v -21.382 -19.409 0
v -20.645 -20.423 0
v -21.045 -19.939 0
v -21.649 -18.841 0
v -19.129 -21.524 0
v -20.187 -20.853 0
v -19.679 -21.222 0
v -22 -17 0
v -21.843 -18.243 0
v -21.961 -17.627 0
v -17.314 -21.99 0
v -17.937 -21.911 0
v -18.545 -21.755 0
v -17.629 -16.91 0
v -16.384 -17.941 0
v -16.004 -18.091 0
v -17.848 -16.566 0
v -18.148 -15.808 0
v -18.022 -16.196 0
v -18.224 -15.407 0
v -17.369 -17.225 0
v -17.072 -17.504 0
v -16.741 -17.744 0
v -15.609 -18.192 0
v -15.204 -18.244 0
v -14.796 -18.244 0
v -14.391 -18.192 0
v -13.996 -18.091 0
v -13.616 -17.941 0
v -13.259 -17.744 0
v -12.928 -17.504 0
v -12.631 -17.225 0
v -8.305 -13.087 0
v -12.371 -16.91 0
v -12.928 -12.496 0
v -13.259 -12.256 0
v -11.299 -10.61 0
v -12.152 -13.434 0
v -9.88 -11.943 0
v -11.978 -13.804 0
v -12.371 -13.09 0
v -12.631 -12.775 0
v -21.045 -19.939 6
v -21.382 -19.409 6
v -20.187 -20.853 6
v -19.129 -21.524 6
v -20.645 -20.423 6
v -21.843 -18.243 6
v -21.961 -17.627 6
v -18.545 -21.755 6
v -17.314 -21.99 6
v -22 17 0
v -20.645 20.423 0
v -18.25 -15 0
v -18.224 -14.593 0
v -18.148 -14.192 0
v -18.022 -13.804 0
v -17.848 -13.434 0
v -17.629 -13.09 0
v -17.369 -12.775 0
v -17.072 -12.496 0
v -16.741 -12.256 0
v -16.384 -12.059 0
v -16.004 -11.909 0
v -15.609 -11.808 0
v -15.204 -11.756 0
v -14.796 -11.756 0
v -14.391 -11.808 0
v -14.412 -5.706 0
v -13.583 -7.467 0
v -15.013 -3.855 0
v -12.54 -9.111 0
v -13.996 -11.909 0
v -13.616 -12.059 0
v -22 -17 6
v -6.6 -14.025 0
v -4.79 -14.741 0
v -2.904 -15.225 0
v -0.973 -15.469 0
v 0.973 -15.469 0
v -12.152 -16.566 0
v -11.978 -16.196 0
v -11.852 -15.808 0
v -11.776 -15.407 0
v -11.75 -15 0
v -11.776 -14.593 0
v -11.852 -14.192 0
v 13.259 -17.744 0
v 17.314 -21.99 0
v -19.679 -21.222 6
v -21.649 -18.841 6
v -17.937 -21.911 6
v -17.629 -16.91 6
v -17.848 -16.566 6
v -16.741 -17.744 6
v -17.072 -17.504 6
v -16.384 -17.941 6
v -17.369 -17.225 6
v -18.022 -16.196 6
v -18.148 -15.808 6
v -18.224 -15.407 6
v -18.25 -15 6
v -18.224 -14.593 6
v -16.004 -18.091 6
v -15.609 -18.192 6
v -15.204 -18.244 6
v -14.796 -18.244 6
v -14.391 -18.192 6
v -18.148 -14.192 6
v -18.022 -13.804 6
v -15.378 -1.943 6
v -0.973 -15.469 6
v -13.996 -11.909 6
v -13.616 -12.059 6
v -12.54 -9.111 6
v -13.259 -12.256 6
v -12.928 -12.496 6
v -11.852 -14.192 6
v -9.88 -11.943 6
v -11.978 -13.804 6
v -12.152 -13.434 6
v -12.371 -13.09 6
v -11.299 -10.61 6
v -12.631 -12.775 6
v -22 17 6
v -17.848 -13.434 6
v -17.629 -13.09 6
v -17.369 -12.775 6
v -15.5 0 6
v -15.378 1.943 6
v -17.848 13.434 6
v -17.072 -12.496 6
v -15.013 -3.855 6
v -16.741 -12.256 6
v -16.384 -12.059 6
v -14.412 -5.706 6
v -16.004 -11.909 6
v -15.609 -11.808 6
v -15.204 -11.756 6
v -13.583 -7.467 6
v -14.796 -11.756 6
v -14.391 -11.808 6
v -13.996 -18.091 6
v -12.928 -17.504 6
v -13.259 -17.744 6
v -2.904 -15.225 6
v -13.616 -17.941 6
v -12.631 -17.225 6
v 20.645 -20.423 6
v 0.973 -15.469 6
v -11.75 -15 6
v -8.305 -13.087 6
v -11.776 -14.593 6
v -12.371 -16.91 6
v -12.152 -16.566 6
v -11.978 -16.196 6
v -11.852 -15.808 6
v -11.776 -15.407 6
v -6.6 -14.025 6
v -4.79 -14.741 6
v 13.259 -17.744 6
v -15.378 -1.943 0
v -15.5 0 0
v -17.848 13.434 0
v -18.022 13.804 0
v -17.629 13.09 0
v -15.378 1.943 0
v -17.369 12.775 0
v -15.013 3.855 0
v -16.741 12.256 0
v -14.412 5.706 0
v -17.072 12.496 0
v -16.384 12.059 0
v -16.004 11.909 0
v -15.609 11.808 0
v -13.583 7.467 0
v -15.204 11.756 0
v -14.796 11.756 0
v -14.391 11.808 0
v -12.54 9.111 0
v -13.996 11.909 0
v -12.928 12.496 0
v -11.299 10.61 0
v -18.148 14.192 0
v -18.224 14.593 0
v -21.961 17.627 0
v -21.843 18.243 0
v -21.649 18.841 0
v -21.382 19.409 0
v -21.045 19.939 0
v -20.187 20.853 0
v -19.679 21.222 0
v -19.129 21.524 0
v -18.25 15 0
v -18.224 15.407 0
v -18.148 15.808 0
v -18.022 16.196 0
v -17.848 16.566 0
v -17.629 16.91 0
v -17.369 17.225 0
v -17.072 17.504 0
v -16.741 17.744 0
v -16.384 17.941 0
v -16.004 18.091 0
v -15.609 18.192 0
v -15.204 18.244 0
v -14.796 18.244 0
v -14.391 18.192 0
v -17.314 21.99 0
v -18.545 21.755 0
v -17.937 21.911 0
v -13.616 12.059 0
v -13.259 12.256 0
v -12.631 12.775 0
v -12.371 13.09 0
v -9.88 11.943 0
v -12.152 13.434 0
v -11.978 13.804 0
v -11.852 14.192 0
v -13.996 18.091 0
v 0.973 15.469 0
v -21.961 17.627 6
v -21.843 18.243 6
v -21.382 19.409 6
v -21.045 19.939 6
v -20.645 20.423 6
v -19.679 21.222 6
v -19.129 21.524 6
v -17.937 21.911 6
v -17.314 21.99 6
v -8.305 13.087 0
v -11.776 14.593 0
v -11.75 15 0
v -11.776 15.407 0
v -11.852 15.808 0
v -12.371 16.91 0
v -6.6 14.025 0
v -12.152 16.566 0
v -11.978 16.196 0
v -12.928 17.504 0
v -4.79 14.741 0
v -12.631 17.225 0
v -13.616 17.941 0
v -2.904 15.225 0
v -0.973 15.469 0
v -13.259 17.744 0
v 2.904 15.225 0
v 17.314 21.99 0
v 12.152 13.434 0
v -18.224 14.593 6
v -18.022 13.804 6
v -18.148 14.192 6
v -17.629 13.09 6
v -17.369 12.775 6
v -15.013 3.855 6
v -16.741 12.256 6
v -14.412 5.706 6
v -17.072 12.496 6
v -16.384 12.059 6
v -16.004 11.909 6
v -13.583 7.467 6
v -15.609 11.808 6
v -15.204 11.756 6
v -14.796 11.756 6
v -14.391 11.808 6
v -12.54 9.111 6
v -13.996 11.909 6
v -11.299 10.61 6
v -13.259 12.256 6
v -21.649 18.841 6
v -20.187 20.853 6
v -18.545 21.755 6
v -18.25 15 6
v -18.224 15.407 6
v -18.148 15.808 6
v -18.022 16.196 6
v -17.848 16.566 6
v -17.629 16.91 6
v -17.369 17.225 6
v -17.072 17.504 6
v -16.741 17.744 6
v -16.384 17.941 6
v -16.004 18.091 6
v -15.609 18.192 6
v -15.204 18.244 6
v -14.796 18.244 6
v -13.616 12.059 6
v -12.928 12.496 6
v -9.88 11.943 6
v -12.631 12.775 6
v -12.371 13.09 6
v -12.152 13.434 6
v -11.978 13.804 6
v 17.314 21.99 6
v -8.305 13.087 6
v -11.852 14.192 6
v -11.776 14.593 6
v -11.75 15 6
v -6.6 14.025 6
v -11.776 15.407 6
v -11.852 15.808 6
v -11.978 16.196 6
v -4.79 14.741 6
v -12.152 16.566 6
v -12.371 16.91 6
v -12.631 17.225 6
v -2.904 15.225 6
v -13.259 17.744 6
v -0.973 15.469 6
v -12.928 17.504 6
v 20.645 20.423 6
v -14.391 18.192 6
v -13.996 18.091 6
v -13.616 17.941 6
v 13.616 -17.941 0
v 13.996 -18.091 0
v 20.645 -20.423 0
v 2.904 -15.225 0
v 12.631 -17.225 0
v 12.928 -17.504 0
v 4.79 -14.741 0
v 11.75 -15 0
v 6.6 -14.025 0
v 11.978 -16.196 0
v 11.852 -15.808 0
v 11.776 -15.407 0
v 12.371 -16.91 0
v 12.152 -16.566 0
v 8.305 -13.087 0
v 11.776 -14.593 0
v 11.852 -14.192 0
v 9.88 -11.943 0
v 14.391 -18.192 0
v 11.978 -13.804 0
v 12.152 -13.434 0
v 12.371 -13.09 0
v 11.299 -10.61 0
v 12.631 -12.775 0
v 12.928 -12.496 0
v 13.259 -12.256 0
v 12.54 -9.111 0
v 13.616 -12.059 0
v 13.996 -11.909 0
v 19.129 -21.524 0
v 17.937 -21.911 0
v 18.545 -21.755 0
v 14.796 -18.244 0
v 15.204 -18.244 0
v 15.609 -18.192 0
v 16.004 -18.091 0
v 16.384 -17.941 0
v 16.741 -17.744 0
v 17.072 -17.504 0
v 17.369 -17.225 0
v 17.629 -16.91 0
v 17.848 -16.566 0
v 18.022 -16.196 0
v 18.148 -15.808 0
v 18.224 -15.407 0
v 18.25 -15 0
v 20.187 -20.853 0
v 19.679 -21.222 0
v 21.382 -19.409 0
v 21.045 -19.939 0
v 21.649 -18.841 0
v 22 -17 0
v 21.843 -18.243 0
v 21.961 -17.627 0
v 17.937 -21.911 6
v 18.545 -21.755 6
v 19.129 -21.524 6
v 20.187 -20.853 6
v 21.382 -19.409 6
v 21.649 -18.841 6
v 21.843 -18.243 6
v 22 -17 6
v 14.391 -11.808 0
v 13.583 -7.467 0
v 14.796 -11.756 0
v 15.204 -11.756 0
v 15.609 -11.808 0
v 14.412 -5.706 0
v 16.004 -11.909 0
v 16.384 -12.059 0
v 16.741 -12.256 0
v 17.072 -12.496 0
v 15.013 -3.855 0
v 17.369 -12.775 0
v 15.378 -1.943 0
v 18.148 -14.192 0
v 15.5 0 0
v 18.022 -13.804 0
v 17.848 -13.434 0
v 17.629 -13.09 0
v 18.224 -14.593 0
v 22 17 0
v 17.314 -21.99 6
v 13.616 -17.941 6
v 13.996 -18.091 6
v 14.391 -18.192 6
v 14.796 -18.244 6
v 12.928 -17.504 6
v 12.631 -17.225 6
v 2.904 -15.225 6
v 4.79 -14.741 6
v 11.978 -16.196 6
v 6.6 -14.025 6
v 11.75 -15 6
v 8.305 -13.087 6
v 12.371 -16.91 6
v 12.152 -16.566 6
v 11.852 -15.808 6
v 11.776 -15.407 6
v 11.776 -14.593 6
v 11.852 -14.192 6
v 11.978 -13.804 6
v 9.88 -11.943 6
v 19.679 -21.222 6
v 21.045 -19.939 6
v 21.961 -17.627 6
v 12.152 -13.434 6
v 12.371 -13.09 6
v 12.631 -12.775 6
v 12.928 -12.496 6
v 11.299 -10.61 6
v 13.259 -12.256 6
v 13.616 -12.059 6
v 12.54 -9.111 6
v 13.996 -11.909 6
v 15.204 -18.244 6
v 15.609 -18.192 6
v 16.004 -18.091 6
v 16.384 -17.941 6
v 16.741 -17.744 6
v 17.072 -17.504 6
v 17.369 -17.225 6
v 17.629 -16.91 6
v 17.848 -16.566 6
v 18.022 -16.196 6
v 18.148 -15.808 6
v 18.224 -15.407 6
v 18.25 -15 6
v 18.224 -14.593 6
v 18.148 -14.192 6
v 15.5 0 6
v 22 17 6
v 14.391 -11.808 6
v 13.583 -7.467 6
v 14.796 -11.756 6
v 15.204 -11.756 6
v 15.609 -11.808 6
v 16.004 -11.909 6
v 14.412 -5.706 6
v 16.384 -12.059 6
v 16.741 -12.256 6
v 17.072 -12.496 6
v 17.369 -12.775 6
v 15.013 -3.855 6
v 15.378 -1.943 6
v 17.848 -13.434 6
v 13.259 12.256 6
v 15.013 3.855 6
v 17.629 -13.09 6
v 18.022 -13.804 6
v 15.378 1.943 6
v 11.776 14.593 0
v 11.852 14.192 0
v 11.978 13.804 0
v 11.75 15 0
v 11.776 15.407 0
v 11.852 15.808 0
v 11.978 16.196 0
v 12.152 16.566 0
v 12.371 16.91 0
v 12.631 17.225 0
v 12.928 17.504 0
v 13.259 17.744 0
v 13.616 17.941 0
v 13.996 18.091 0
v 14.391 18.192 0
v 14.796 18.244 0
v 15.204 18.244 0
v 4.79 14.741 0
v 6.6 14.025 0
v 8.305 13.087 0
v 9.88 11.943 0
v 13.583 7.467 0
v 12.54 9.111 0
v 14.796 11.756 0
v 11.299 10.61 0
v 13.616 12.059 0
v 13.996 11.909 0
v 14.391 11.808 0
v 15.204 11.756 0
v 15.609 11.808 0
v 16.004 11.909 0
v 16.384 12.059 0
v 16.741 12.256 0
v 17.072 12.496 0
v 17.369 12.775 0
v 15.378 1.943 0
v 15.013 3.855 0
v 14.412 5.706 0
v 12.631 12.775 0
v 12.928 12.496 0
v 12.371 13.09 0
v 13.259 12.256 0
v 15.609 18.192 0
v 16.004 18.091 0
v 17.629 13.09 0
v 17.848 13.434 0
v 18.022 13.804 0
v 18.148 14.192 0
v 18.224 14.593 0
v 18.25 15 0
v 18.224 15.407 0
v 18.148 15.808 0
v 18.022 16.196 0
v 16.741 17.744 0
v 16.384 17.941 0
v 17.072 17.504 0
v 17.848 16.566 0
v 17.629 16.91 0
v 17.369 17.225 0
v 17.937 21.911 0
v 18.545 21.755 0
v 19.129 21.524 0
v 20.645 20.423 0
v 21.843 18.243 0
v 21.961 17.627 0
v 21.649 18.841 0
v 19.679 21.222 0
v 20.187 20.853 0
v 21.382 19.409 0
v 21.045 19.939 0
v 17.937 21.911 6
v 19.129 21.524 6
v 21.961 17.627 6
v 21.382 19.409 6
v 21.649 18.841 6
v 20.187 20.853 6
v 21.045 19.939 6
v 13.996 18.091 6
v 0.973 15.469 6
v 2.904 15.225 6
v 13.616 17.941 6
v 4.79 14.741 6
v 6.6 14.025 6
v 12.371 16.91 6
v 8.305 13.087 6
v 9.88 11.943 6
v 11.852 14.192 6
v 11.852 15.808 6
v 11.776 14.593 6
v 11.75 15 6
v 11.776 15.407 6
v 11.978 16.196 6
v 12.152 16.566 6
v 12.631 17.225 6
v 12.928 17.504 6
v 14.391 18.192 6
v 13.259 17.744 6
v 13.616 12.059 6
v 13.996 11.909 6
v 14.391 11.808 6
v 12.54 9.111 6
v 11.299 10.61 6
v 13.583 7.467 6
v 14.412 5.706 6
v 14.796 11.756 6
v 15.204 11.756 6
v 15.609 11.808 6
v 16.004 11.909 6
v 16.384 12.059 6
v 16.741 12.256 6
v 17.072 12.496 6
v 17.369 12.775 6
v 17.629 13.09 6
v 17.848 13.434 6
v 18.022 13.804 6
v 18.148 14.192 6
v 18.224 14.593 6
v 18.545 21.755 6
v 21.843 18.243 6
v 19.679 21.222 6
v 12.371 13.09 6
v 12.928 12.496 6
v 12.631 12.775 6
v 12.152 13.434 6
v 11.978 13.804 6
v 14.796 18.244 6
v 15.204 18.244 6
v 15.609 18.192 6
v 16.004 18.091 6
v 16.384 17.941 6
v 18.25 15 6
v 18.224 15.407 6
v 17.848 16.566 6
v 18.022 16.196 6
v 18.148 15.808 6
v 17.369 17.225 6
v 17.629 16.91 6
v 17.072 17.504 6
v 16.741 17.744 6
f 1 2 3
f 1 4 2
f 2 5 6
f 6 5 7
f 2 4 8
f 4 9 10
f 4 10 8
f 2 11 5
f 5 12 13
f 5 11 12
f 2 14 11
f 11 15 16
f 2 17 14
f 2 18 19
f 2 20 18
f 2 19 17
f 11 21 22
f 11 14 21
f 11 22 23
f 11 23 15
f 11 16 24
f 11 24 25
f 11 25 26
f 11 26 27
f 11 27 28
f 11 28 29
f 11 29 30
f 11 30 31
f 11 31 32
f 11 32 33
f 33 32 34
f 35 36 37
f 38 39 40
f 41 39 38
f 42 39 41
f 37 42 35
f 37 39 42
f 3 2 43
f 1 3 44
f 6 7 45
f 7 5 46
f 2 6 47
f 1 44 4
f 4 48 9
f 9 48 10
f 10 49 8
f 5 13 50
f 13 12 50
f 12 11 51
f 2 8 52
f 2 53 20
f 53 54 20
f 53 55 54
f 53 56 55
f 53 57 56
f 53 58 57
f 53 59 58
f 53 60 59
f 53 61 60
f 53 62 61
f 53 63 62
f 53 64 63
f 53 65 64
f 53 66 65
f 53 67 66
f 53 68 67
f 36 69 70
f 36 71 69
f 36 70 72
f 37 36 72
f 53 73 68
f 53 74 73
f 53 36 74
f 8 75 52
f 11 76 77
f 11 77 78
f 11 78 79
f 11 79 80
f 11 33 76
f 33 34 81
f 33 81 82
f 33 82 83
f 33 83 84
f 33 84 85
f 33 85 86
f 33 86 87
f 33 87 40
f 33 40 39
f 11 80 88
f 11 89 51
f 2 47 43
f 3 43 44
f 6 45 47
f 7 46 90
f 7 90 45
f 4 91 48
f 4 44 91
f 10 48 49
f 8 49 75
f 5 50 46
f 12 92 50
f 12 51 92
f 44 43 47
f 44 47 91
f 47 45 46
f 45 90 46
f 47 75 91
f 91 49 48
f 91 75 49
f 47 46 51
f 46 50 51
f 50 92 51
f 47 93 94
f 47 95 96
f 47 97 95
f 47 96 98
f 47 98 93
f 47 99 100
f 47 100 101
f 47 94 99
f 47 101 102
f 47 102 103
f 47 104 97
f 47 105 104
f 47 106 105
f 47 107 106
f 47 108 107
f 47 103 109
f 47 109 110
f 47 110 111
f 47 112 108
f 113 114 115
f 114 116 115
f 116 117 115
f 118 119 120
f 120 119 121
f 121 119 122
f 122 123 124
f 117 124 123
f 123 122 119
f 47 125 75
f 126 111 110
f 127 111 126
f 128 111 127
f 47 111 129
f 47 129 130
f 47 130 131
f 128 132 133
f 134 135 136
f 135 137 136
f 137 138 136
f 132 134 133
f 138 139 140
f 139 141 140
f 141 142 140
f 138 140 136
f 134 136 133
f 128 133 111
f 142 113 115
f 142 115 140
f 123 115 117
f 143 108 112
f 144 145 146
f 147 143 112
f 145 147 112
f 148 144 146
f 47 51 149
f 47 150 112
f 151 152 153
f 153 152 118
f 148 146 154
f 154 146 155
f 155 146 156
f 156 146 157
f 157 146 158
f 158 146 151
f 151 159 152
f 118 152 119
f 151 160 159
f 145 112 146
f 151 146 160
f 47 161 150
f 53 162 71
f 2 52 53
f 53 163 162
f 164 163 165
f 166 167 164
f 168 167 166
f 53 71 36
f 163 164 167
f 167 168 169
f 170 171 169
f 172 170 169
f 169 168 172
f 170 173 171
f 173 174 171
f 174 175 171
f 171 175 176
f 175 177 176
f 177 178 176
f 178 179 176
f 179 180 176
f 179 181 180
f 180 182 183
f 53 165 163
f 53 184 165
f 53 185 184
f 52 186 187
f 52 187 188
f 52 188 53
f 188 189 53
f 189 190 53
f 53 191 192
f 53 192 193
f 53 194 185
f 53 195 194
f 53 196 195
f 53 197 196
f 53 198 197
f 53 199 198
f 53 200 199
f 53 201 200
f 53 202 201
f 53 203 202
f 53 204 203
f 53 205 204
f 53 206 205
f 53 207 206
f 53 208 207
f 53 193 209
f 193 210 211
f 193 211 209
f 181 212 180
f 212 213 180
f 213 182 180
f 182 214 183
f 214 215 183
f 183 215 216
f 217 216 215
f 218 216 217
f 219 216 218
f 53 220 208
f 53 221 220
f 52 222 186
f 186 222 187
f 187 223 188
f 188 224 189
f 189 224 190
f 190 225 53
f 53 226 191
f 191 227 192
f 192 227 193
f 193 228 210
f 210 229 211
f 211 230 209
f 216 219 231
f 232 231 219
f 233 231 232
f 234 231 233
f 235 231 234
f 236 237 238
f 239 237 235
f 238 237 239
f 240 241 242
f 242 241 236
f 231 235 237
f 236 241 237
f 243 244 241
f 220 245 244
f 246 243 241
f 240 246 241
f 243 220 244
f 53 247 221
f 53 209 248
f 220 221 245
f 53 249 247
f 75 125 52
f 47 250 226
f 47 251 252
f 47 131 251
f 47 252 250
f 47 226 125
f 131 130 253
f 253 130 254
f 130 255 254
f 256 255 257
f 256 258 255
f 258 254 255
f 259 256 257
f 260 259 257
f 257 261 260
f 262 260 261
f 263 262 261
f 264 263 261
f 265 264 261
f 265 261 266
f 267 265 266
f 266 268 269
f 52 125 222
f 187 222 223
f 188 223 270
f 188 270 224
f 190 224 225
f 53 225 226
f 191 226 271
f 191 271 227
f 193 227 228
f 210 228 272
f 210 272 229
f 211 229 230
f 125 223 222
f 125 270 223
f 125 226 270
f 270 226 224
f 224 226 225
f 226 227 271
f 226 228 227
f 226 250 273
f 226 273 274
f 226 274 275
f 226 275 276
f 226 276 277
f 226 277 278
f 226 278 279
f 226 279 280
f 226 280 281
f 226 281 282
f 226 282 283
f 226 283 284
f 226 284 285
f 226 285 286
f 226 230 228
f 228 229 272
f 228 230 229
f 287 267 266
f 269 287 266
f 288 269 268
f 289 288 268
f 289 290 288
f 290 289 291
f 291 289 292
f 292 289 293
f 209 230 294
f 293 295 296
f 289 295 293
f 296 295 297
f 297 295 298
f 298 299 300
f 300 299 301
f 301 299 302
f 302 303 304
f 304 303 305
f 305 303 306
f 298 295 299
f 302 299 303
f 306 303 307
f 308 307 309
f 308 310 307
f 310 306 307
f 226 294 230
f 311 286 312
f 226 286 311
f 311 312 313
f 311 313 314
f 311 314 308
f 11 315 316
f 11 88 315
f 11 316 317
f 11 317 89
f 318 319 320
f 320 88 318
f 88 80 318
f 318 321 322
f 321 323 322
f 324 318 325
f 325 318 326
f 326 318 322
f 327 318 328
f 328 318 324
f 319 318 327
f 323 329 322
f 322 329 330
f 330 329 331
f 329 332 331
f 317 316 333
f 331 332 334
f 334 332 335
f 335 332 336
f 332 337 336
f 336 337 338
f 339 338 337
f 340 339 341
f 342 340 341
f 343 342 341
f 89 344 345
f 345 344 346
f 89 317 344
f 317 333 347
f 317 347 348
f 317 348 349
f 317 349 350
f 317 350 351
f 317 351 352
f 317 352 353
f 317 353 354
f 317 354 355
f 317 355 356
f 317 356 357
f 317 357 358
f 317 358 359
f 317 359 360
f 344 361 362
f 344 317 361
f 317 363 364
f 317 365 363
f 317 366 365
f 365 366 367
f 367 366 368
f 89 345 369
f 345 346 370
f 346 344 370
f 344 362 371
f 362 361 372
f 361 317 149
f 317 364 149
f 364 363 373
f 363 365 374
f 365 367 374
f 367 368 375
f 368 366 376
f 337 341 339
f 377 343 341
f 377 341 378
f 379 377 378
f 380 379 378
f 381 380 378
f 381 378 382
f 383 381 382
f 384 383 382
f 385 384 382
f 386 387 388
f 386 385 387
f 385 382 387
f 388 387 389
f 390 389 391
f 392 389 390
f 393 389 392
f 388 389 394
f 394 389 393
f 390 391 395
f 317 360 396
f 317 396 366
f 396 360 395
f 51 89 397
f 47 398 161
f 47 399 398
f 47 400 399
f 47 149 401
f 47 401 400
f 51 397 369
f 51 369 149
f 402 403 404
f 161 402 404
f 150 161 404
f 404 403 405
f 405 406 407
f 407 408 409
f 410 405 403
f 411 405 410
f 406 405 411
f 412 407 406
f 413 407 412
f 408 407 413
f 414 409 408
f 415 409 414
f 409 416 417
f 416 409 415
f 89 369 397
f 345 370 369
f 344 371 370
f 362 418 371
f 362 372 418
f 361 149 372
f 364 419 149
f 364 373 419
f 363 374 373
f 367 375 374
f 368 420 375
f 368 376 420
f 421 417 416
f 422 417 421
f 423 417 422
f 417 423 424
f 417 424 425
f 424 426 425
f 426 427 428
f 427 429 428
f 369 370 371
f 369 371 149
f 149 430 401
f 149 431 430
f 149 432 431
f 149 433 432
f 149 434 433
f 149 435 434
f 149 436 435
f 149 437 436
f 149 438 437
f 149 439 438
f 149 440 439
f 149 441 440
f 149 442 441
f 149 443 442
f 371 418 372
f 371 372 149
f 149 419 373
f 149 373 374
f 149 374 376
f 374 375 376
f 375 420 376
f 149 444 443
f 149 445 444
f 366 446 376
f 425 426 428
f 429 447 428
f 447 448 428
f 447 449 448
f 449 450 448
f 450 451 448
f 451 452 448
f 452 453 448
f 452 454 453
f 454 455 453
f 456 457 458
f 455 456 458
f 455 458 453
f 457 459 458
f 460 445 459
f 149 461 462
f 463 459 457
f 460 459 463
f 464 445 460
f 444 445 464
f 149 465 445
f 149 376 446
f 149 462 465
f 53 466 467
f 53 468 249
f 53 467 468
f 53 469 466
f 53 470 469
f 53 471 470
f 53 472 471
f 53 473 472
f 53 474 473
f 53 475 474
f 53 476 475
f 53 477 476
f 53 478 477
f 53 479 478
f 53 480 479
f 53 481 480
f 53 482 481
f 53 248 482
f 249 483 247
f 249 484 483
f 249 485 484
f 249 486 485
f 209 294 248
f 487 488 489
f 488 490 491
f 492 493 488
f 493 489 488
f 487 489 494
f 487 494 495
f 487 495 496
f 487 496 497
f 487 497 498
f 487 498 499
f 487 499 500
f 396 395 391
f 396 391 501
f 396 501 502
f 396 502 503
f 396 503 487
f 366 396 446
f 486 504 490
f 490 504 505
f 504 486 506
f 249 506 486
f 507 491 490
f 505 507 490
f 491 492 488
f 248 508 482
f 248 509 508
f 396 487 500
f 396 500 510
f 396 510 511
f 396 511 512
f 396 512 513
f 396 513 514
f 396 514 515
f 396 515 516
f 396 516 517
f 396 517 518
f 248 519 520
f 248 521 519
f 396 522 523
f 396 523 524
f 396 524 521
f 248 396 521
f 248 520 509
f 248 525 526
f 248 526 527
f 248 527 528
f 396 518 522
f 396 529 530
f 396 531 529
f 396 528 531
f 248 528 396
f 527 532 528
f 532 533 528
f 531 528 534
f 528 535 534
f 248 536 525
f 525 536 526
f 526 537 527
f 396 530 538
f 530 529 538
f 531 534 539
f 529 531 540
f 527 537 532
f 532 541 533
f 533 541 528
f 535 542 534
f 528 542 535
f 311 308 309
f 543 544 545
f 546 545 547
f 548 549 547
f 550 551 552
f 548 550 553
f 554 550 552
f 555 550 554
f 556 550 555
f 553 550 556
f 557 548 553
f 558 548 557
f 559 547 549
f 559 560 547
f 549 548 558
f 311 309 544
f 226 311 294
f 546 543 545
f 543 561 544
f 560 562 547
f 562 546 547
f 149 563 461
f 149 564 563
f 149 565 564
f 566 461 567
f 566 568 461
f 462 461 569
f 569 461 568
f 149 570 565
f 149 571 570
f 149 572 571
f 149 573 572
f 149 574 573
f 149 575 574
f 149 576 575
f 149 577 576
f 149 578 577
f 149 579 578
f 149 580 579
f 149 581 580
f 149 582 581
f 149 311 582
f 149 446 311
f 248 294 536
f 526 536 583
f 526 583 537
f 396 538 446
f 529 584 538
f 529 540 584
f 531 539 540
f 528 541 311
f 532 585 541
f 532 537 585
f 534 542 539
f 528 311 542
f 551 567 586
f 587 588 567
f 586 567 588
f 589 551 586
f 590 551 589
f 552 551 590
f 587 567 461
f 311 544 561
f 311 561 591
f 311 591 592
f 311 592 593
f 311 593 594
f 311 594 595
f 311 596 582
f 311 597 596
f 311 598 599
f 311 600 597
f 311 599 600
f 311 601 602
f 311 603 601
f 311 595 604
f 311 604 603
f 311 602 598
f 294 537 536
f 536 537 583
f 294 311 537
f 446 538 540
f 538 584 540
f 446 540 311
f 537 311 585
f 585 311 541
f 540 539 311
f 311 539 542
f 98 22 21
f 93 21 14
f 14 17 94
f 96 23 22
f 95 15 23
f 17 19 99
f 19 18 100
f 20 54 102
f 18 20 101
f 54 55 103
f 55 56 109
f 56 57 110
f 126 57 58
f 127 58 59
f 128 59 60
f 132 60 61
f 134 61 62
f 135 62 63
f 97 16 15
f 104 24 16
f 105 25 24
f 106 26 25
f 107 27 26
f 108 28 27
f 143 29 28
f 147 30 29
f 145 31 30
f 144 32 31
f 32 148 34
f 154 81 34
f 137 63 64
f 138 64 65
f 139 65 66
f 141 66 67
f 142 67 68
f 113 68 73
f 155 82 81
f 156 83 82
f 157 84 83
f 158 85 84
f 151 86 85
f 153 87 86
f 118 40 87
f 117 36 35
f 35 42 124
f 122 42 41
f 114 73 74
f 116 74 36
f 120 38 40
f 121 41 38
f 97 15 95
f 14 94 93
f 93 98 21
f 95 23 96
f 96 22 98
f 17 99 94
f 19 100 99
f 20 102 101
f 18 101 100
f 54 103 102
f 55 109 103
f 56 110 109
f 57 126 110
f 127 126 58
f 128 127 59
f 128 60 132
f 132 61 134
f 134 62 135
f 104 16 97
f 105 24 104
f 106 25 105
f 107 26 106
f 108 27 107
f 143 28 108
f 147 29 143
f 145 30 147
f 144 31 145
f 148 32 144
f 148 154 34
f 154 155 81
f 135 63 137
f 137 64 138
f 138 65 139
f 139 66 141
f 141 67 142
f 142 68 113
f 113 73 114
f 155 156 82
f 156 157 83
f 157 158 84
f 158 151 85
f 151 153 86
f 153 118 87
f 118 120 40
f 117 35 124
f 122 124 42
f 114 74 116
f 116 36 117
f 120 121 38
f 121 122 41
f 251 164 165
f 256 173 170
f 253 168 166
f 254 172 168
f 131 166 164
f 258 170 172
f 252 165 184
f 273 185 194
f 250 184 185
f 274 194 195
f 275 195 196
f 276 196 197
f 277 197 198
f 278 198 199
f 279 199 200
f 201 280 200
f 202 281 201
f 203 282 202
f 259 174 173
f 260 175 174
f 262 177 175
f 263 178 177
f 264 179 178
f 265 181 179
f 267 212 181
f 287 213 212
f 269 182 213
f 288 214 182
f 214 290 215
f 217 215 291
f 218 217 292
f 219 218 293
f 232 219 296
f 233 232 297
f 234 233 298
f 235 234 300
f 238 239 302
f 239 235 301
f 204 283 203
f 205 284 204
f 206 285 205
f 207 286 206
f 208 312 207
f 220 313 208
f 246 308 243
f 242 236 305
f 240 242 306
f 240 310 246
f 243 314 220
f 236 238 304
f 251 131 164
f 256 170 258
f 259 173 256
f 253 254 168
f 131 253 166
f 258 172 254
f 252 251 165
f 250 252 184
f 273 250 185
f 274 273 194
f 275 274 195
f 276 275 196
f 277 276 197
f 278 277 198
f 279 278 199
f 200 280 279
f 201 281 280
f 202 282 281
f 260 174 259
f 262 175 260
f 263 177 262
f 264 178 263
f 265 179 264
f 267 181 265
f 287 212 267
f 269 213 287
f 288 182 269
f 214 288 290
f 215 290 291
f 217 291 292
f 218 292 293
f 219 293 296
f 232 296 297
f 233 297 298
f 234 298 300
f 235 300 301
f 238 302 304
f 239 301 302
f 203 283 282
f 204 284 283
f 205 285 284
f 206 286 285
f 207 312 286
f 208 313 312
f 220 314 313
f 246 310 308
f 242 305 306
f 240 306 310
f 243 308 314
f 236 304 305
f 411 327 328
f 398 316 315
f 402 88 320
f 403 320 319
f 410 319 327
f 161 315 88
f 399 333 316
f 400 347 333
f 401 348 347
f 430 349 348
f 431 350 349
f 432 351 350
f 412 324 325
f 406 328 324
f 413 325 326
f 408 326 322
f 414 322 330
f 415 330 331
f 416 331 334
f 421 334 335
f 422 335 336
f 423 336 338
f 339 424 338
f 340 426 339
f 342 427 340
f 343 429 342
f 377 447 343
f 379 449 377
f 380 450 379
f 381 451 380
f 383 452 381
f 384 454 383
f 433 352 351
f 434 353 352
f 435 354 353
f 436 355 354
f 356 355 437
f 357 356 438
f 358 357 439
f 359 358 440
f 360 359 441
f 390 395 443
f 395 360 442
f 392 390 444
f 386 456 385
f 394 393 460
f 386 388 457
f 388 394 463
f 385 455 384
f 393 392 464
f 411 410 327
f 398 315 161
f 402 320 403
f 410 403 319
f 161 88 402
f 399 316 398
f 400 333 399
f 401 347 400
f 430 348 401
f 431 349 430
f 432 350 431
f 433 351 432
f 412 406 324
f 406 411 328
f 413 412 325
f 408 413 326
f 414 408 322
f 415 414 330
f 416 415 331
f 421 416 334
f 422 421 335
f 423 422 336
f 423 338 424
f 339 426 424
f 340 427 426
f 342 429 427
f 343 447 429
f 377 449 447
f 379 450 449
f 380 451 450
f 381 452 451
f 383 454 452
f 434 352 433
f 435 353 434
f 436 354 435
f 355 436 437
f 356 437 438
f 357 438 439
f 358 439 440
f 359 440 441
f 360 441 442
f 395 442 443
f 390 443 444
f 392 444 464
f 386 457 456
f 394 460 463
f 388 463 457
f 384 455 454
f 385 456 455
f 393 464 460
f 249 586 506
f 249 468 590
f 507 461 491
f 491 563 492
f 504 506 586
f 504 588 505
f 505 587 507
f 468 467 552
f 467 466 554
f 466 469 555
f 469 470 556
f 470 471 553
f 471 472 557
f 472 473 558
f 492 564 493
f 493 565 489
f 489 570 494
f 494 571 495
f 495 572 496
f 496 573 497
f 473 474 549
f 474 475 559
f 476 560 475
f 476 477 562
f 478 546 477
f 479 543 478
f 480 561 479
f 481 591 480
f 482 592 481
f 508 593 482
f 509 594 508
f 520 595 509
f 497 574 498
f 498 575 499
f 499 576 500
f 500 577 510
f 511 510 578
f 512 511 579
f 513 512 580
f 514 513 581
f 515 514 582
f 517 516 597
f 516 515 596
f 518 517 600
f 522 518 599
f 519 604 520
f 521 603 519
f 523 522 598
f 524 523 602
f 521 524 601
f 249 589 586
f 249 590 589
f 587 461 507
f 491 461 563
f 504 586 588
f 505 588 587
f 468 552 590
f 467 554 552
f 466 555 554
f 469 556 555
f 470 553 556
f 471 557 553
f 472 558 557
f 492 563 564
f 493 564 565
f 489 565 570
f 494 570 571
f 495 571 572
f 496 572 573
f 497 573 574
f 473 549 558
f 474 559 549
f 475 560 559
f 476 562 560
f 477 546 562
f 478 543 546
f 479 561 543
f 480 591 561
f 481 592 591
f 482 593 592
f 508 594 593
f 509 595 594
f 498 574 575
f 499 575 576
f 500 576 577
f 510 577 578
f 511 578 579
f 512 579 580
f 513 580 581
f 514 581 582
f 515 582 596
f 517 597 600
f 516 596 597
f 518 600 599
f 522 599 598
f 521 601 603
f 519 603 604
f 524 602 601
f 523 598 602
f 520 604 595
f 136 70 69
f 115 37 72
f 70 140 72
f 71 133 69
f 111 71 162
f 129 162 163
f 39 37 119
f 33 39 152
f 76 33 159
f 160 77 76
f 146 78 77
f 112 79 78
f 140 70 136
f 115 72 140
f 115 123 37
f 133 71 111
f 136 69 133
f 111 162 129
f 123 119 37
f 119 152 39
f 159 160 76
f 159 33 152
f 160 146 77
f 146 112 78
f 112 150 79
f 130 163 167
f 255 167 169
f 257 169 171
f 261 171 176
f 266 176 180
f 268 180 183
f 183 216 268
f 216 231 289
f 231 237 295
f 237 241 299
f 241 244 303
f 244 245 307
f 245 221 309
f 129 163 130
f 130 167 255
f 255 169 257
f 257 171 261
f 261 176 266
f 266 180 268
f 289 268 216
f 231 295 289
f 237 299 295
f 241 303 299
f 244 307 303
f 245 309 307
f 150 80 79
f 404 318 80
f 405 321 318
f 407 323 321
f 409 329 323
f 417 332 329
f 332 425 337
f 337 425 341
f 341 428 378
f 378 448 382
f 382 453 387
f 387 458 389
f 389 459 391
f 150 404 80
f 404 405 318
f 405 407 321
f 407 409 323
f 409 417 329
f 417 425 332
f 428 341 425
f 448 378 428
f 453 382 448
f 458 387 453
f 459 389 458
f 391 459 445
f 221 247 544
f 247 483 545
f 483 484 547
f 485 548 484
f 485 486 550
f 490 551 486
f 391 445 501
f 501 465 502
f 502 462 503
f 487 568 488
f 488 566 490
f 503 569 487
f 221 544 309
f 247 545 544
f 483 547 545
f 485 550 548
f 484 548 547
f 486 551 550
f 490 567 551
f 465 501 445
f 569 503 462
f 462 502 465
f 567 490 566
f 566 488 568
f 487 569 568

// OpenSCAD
$fn = 50;

difference() {
	union() {
		hull() {
			translate(v = [-17.0, 17.0, 0]) {
				cylinder(h = 6, r = 5);
			}
			translate(v = [17.0, 17.0, 0]) {
				cylinder(h = 6, r = 5);
			}
			translate(v = [-17.0, -17.0, 0]) {
				cylinder(h = 6, r = 5);
			}
			translate(v = [17.0, -17.0, 0]) {
				cylinder(h = 6, r = 5);
			}
		}
	}
	union() {
		translate(v = [-15.0, -15.0, -100.0]) {
			cylinder(h = 200, r = 3.25);
		}
		translate(v = [-15.0, 15.0, -100.0]) {
			cylinder(h = 200, r = 3.25);
		}
		translate(v = [15.0, -15.0, -100.0]) {
			cylinder(h = 200, r = 3.25);
		}
		translate(v = [15.0, 15.0, -100.0]) {
			cylinder(h = 200, r = 3.25);
		}
		translate(v = [-15.0, -15.0, -100.0]) {
			cylinder(h = 200, r = 1.8);
		}
		translate(v = [-15.0, 15.0, -100.0]) {
			cylinder(h = 200, r = 1.8);
		}
		translate(v = [15.0, -15.0, -100.0]) {
			cylinder(h = 200, r = 1.8);
		}
		translate(v = [15.0, 15.0, -100.0]) {
			cylinder(h = 200, r = 1.8);
		}
		cylinder(h = 6, r = 15.5);
	}
}
